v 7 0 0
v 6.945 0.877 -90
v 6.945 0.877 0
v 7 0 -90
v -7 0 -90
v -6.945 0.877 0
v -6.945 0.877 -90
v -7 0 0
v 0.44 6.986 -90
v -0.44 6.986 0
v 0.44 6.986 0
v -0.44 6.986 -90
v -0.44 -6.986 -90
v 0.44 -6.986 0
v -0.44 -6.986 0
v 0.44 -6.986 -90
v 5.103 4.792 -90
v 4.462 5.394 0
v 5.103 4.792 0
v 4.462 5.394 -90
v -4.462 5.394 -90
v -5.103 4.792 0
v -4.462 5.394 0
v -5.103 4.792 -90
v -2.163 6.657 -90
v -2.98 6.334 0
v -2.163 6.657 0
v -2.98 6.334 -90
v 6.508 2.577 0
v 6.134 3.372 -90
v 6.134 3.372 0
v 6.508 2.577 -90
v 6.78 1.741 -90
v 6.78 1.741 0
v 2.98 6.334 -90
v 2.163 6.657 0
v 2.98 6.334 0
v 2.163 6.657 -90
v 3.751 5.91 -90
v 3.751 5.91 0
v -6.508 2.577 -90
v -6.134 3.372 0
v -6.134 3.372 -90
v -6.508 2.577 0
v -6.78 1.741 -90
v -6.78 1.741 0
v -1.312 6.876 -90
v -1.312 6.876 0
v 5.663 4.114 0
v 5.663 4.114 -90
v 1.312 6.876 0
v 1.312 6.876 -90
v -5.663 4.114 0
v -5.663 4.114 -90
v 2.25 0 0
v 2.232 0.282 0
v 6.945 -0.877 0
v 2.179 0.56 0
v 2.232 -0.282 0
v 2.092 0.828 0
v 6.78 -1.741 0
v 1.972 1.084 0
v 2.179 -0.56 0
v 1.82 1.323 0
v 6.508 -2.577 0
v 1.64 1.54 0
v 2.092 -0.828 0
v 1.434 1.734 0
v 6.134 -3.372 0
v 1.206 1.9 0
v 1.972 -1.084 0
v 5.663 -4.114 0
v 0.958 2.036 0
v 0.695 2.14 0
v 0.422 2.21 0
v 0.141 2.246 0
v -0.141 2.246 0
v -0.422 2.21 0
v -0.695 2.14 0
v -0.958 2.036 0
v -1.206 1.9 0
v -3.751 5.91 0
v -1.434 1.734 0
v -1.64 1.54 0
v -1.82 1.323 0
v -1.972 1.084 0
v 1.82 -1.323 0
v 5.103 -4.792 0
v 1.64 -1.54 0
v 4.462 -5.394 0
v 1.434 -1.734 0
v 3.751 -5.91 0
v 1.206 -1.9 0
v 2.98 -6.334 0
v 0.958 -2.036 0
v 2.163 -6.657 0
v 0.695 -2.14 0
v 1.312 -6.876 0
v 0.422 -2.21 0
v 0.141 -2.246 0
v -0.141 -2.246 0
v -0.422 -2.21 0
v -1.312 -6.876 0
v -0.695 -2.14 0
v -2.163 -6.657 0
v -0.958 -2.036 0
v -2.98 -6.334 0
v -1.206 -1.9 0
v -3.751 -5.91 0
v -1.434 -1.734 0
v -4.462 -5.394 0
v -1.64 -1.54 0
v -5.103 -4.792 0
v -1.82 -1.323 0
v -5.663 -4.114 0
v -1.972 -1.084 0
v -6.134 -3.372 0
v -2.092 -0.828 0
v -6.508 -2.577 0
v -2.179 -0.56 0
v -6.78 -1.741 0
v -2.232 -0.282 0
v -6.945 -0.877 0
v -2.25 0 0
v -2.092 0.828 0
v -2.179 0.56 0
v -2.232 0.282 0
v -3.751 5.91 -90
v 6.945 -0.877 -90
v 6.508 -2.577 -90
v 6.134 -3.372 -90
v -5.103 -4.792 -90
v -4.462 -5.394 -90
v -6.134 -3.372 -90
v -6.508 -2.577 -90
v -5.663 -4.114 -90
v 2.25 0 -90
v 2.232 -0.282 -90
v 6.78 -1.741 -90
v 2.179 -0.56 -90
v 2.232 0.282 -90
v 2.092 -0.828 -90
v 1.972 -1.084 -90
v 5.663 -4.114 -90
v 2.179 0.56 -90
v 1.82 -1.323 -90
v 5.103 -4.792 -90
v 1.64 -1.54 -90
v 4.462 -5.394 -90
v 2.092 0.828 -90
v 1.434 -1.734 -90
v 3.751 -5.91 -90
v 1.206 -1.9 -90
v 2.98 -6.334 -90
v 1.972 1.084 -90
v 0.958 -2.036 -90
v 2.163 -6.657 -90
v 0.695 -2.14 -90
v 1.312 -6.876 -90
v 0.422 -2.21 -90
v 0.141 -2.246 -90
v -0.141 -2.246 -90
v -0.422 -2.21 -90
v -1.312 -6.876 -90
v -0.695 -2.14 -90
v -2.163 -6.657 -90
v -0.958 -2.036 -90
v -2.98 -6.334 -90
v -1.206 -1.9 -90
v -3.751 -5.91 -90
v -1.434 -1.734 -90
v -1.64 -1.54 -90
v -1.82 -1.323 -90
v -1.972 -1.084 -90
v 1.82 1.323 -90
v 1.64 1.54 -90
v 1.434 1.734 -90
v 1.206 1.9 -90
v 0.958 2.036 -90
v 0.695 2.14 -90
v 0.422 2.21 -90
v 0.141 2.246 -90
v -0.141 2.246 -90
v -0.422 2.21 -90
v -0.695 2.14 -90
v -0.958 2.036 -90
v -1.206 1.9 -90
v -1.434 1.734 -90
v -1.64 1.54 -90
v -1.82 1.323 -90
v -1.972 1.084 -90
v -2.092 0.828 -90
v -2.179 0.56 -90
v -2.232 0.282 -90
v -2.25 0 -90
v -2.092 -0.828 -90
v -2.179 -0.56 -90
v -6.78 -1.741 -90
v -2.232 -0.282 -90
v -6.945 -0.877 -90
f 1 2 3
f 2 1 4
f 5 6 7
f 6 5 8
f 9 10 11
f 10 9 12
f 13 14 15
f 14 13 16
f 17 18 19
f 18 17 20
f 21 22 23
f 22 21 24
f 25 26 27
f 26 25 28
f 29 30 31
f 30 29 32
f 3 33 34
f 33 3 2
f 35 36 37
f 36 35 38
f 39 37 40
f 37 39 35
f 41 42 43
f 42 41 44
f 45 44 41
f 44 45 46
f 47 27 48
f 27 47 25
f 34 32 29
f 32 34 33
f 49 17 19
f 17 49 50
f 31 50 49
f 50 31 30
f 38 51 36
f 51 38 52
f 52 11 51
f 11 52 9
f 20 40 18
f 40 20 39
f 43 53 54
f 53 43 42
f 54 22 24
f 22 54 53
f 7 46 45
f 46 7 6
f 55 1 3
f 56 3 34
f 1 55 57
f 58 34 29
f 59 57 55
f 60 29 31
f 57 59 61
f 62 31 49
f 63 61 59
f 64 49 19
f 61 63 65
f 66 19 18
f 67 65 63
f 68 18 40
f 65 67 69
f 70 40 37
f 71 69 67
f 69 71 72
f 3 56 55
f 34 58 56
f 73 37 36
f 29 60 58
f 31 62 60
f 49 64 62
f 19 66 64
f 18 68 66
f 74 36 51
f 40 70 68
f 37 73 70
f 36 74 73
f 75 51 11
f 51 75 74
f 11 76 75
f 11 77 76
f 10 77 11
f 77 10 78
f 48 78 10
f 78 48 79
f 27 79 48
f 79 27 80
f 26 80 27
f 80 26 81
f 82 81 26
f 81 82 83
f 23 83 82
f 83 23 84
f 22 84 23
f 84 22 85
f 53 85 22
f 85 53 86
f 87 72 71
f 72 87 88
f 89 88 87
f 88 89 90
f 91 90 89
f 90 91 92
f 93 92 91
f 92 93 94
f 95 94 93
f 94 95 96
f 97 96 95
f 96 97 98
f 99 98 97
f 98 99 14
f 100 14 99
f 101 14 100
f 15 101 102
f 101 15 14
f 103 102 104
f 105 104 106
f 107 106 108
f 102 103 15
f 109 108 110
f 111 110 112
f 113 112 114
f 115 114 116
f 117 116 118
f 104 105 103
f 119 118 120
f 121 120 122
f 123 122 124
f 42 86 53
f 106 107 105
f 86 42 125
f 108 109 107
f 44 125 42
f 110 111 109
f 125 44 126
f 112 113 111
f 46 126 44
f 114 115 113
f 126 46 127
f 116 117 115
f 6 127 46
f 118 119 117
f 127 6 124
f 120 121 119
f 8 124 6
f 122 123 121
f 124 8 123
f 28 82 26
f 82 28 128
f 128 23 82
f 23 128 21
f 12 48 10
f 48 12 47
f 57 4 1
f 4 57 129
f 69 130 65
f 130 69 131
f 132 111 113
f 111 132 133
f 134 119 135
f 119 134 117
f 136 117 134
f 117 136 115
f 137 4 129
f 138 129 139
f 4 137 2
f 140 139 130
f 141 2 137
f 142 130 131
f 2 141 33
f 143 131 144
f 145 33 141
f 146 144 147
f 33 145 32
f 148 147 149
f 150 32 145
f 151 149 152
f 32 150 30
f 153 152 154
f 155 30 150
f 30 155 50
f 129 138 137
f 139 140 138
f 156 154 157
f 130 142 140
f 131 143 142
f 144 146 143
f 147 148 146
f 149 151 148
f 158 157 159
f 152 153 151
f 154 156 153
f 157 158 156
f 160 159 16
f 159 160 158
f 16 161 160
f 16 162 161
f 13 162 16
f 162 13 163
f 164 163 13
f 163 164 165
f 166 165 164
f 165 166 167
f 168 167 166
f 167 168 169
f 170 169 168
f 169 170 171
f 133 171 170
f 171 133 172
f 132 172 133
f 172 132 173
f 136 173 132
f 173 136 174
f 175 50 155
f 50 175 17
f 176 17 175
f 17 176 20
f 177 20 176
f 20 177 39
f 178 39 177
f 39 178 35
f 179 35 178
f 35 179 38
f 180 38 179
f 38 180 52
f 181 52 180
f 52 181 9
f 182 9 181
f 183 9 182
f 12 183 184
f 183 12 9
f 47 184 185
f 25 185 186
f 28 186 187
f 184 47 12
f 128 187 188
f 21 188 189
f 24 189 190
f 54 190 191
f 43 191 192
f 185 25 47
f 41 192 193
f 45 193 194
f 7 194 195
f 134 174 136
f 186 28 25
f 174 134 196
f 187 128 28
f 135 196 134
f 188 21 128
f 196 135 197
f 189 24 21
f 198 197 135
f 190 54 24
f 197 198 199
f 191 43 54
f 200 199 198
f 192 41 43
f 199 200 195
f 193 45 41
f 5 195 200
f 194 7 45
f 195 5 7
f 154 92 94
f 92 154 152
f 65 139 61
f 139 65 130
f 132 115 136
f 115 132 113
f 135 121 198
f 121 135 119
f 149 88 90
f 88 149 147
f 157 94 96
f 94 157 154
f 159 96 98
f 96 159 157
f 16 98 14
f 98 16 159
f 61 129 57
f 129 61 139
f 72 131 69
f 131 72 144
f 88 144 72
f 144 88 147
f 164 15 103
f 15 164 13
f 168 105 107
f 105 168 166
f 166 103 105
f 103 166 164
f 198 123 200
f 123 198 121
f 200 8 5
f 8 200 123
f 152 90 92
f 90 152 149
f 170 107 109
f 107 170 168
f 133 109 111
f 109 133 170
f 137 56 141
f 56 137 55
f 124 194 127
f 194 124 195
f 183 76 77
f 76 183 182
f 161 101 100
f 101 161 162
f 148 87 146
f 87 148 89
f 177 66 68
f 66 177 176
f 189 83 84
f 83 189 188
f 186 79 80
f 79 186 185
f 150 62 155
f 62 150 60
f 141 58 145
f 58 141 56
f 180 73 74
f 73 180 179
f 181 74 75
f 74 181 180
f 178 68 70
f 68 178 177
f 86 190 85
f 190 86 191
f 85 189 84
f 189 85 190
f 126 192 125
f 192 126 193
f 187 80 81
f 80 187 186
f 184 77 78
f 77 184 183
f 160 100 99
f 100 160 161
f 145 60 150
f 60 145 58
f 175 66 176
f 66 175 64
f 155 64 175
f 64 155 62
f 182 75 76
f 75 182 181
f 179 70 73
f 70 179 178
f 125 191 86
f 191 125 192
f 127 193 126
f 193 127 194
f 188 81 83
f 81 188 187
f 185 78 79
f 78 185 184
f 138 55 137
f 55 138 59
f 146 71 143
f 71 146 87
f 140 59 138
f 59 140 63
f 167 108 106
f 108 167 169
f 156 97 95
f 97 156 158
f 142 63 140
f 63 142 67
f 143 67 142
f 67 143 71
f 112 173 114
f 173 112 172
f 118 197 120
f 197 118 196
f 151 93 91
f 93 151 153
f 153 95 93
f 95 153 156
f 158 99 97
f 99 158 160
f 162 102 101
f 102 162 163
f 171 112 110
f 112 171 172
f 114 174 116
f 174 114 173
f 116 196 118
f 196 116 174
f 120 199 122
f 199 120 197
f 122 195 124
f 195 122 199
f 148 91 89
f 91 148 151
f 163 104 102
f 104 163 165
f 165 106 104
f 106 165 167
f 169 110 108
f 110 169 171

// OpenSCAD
$fn = 50;


difference() {
	union() {
		translate(v = [0, 0, -90.0000000000]) {
			cylinder(h = 90, r = 7.0000000000);
		}
		cylinder(h = 0, r = 17.0000000000);
	}
	union() {
		#translate(v = [0, 0, -90]) {
			cylinder(h = 90, r = 2.2500000000);
		}
	}
}
